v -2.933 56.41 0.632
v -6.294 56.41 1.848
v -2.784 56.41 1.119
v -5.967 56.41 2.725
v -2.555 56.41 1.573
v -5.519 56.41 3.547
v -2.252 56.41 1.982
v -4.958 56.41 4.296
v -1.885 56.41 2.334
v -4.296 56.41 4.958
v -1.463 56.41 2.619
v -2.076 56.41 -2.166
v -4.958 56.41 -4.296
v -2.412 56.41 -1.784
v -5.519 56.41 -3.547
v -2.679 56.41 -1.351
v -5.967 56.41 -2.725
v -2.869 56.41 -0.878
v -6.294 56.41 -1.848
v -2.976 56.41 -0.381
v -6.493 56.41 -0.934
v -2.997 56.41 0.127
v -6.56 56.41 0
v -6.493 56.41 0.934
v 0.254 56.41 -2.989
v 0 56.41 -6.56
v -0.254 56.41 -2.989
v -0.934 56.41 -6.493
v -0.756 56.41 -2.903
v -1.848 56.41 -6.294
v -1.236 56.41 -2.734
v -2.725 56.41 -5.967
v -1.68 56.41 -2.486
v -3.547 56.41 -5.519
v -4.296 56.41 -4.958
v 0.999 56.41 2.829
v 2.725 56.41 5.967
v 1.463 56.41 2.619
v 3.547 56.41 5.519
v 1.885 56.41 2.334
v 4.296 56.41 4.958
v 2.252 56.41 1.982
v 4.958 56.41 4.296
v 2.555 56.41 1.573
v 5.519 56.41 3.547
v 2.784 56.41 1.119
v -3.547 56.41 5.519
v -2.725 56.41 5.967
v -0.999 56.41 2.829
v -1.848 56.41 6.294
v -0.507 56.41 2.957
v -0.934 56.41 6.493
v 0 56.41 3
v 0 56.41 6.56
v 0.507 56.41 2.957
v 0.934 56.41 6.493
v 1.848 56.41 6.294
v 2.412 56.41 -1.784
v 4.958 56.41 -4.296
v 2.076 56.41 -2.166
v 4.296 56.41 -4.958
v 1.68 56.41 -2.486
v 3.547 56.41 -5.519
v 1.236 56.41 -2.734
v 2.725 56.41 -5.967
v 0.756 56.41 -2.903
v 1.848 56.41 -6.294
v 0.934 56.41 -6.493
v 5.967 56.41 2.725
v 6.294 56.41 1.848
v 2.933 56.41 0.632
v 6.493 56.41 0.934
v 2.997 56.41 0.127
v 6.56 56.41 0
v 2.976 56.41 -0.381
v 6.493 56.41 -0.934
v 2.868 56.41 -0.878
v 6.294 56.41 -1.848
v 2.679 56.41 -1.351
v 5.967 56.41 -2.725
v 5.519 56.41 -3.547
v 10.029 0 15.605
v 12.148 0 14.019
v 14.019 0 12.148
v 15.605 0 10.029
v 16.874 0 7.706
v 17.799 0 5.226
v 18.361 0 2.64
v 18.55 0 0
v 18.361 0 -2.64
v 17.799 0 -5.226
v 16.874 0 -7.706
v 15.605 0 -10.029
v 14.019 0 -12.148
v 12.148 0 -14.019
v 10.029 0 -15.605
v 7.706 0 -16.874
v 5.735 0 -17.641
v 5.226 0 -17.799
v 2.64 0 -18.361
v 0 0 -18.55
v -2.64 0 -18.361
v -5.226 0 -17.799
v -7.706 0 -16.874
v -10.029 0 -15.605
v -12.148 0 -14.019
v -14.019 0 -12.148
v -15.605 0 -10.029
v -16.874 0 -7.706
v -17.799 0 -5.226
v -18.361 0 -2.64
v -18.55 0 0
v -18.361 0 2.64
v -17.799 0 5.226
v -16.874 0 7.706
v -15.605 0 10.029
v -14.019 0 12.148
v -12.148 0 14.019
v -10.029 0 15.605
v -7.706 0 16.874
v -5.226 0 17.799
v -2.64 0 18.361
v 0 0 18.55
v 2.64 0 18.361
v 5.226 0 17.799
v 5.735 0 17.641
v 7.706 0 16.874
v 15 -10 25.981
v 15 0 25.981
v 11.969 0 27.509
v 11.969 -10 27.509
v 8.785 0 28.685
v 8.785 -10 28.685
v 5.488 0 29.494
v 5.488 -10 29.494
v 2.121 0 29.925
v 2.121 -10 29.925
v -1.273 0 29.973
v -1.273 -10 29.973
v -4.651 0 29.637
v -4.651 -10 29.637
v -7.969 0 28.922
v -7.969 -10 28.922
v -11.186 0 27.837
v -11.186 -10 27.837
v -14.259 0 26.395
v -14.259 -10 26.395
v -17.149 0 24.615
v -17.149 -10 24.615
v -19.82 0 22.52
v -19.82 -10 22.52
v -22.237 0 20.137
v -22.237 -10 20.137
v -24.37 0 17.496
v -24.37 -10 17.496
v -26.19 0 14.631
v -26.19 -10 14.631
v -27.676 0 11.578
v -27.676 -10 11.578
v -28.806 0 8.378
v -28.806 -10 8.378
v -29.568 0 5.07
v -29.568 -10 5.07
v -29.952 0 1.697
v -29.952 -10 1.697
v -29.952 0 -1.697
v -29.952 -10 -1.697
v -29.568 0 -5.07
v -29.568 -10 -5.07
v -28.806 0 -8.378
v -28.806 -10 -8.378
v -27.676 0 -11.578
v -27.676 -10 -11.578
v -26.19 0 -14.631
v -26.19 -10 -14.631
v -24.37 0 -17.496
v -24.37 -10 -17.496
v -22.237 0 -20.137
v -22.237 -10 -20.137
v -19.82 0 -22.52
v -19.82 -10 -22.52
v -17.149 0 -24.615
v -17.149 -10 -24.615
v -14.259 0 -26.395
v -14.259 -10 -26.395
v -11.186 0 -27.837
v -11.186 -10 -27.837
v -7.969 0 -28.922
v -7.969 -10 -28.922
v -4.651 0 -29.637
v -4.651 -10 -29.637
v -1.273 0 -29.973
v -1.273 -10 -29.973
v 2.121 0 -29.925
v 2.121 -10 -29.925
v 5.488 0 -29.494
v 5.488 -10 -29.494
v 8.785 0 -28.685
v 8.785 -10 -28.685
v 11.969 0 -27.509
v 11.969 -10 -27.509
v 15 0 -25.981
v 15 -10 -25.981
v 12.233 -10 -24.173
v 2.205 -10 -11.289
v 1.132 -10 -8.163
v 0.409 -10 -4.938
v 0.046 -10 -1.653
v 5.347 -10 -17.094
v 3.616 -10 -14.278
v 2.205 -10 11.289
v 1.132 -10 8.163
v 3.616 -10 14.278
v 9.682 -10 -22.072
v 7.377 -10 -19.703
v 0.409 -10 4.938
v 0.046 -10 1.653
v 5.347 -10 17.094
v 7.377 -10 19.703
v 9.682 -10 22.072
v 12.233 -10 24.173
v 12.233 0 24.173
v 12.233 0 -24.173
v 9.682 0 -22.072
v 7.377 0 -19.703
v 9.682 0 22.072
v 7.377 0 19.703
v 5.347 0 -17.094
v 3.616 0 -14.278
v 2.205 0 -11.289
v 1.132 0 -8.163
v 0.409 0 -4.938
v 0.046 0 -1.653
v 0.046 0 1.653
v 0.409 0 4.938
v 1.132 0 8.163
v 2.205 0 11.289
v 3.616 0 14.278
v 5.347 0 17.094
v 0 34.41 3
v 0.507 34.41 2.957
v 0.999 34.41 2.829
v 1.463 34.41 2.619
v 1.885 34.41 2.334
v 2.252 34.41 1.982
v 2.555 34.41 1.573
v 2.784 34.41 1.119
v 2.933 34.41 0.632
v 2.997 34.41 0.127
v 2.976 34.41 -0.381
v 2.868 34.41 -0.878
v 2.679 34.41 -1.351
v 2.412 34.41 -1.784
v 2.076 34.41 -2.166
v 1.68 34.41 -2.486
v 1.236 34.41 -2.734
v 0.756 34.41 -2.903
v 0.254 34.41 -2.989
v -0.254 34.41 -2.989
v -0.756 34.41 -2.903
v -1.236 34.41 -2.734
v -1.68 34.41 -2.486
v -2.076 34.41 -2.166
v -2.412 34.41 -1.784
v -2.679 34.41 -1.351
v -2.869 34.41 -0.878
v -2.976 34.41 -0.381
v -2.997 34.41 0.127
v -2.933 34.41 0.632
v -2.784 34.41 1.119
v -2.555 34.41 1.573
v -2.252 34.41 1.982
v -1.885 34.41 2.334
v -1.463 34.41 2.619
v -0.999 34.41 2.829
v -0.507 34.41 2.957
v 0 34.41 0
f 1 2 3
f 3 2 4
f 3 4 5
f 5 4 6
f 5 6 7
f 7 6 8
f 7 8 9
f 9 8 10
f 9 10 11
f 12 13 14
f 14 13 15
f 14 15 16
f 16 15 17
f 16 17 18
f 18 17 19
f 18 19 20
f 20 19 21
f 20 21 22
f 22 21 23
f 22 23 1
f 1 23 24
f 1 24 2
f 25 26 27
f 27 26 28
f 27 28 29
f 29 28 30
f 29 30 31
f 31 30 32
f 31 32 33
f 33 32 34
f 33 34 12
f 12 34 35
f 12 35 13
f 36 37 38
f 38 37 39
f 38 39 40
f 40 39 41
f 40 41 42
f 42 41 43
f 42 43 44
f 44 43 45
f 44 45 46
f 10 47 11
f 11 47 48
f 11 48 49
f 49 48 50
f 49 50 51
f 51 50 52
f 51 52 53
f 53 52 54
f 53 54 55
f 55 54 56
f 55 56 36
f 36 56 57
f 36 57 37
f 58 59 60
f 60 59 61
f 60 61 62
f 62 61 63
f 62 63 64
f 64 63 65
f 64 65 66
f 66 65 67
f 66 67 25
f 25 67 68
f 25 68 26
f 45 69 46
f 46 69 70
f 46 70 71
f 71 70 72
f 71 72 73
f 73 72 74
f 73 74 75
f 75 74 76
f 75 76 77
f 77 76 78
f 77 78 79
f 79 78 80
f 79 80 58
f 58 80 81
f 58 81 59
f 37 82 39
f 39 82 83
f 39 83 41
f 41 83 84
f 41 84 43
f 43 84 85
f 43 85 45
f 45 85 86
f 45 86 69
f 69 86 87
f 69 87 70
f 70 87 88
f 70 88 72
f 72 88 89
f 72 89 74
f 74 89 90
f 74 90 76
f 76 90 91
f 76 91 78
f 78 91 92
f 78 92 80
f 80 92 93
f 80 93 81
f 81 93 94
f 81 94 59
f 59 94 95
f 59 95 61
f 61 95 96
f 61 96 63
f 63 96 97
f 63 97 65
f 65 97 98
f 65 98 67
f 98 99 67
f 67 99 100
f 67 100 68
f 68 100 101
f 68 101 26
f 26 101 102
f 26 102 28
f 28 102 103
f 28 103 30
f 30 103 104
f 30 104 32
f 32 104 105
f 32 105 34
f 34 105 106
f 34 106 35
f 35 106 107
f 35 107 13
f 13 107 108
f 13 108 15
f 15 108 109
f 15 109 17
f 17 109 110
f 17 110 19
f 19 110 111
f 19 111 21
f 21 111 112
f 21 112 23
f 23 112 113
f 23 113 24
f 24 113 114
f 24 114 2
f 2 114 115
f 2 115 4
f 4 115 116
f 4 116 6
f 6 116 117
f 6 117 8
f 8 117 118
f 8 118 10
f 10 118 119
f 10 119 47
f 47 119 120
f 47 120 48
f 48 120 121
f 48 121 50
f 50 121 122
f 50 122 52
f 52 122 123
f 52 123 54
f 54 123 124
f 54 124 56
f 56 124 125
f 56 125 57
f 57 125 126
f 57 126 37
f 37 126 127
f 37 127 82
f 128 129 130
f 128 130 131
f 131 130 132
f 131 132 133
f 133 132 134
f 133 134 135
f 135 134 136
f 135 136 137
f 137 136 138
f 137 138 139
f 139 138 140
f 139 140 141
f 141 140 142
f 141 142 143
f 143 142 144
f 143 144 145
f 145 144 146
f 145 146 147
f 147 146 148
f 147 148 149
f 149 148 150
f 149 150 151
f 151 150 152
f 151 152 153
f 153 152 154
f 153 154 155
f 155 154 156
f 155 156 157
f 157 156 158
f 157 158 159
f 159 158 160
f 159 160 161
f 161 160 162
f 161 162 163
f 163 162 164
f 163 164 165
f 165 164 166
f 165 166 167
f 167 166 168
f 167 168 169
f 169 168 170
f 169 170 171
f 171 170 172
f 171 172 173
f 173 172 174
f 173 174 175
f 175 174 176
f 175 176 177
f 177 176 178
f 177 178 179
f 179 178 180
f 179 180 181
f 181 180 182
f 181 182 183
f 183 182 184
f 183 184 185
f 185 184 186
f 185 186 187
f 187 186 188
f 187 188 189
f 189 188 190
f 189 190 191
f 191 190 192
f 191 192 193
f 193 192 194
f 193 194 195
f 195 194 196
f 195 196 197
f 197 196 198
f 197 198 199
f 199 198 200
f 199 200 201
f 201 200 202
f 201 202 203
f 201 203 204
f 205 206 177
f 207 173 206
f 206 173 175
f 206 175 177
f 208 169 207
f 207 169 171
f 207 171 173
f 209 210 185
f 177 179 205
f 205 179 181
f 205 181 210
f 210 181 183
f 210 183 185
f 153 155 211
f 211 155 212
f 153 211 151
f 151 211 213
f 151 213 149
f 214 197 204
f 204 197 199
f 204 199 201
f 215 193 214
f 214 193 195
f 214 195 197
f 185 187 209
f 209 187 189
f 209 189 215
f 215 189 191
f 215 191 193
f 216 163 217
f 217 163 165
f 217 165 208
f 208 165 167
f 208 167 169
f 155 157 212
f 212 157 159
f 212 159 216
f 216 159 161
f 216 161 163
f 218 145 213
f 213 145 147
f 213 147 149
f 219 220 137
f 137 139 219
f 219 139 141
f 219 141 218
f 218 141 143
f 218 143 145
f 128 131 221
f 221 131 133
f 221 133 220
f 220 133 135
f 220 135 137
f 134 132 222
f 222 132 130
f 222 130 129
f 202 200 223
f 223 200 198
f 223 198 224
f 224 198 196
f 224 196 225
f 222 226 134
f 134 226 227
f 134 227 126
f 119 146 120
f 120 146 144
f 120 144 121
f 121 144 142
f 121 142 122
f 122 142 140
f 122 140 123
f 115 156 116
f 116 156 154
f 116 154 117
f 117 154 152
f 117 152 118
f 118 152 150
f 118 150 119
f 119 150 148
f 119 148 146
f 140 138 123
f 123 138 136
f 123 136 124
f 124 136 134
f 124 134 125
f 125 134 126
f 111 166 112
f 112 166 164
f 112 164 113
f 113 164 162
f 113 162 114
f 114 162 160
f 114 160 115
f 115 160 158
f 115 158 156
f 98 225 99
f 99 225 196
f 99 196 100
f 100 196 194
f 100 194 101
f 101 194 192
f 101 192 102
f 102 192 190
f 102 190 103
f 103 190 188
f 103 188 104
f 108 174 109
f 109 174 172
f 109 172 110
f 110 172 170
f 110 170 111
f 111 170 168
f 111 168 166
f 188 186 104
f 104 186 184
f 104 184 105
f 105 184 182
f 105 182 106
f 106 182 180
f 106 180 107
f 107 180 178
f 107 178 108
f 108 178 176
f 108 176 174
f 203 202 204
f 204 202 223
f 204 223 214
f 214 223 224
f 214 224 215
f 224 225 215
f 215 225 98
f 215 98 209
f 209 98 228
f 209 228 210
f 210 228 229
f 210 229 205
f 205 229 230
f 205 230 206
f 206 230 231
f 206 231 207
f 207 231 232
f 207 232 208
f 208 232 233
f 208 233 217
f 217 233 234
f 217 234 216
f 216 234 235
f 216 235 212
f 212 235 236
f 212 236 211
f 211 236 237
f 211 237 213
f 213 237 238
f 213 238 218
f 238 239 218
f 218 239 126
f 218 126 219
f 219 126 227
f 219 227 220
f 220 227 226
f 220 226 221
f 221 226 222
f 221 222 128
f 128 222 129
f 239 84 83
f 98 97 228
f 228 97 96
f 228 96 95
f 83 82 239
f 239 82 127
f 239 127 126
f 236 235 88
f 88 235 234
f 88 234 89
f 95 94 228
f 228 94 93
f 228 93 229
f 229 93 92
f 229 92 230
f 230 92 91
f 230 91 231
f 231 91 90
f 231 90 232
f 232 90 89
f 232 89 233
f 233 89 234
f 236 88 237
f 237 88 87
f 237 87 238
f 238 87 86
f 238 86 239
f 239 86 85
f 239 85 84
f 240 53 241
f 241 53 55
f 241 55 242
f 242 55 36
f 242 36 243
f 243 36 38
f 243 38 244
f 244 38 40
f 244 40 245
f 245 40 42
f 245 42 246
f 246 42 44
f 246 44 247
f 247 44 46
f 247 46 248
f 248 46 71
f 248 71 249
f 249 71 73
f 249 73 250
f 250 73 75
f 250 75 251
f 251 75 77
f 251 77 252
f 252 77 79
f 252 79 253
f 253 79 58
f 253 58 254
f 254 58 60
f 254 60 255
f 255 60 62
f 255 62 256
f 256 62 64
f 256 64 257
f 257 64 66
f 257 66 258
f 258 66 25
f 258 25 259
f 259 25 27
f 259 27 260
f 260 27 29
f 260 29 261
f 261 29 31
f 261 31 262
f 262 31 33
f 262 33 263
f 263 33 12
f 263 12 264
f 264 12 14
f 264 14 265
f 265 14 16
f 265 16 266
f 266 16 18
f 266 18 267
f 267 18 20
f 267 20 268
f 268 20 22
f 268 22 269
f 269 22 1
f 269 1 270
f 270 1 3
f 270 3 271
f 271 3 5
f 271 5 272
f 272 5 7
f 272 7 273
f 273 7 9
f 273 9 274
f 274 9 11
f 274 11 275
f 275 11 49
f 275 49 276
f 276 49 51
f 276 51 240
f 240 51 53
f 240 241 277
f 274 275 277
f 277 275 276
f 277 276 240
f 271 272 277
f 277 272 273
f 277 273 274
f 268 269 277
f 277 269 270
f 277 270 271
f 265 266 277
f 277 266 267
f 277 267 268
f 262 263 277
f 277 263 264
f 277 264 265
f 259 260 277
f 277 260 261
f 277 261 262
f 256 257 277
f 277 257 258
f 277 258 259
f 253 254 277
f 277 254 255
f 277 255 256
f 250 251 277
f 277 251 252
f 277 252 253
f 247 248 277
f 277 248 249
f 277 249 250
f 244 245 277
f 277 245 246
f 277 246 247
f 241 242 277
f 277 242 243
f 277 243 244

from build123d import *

# Parameters (mm, degrees)
SKETCH_2_R          = 6.56
SKETCH_1_R          = 18.55
SKETCH_3_R          = 30
EXTRUDE_2_DEPTH     = 10
SKETCH_3_5_R        = 30
CUT_EXTRUDE_2_DEPTH = 10
SKETCH_4_R          = 3
CUT_EXTRUDE_3_DEPTH = 22


with BuildPart() as part:
    # 스케치2 → 로프트1 section 0
    with BuildSketch(Plane(origin=(0, 56.41, 0), x_dir=(1, 0, 0), z_dir=(0, 1, 0))):
        Circle(SKETCH_2_R)
    # 스케치1 → 로프트1 section 1
    with BuildSketch(Plane(origin=(0, 0, 0), x_dir=(1, 0, 0), z_dir=(0, 1, 0))):
        Circle(SKETCH_1_R)
    loft()

    # 스케치3 → 보스-돌출2 (add)
    with BuildSketch(Plane(origin=(0, 0, 0), x_dir=(1, 0, 0), z_dir=(0, 1, 0))):
        with Locations(Location((0, 0, 0), (0, 0, 270))):
            Circle(SKETCH_3_R)
    extrude(amount=-EXTRUDE_2_DEPTH)

    # 스케치3<5> → 컷-돌출2 (cut)
    with BuildSketch(Plane(origin=(0, 0, 0), x_dir=(1, 0, 0), z_dir=(0, 1, 0))):
        with Locations((30, 0)):
            Circle(SKETCH_3_5_R)
    extrude(amount=-CUT_EXTRUDE_2_DEPTH, mode=Mode.SUBTRACT)

    # 스케치4 → 컷-돌출3 (cut)
    with BuildSketch(Plane(origin=(0, 56.41, 0), x_dir=(1, 0, 0), z_dir=(0, 1, 0))):
        with Locations(Location((0, 0, 0), (0, 0, 270))):
            Circle(SKETCH_4_R)
    extrude(amount=-CUT_EXTRUDE_3_DEPTH, mode=Mode.SUBTRACT)


solid = part.part
